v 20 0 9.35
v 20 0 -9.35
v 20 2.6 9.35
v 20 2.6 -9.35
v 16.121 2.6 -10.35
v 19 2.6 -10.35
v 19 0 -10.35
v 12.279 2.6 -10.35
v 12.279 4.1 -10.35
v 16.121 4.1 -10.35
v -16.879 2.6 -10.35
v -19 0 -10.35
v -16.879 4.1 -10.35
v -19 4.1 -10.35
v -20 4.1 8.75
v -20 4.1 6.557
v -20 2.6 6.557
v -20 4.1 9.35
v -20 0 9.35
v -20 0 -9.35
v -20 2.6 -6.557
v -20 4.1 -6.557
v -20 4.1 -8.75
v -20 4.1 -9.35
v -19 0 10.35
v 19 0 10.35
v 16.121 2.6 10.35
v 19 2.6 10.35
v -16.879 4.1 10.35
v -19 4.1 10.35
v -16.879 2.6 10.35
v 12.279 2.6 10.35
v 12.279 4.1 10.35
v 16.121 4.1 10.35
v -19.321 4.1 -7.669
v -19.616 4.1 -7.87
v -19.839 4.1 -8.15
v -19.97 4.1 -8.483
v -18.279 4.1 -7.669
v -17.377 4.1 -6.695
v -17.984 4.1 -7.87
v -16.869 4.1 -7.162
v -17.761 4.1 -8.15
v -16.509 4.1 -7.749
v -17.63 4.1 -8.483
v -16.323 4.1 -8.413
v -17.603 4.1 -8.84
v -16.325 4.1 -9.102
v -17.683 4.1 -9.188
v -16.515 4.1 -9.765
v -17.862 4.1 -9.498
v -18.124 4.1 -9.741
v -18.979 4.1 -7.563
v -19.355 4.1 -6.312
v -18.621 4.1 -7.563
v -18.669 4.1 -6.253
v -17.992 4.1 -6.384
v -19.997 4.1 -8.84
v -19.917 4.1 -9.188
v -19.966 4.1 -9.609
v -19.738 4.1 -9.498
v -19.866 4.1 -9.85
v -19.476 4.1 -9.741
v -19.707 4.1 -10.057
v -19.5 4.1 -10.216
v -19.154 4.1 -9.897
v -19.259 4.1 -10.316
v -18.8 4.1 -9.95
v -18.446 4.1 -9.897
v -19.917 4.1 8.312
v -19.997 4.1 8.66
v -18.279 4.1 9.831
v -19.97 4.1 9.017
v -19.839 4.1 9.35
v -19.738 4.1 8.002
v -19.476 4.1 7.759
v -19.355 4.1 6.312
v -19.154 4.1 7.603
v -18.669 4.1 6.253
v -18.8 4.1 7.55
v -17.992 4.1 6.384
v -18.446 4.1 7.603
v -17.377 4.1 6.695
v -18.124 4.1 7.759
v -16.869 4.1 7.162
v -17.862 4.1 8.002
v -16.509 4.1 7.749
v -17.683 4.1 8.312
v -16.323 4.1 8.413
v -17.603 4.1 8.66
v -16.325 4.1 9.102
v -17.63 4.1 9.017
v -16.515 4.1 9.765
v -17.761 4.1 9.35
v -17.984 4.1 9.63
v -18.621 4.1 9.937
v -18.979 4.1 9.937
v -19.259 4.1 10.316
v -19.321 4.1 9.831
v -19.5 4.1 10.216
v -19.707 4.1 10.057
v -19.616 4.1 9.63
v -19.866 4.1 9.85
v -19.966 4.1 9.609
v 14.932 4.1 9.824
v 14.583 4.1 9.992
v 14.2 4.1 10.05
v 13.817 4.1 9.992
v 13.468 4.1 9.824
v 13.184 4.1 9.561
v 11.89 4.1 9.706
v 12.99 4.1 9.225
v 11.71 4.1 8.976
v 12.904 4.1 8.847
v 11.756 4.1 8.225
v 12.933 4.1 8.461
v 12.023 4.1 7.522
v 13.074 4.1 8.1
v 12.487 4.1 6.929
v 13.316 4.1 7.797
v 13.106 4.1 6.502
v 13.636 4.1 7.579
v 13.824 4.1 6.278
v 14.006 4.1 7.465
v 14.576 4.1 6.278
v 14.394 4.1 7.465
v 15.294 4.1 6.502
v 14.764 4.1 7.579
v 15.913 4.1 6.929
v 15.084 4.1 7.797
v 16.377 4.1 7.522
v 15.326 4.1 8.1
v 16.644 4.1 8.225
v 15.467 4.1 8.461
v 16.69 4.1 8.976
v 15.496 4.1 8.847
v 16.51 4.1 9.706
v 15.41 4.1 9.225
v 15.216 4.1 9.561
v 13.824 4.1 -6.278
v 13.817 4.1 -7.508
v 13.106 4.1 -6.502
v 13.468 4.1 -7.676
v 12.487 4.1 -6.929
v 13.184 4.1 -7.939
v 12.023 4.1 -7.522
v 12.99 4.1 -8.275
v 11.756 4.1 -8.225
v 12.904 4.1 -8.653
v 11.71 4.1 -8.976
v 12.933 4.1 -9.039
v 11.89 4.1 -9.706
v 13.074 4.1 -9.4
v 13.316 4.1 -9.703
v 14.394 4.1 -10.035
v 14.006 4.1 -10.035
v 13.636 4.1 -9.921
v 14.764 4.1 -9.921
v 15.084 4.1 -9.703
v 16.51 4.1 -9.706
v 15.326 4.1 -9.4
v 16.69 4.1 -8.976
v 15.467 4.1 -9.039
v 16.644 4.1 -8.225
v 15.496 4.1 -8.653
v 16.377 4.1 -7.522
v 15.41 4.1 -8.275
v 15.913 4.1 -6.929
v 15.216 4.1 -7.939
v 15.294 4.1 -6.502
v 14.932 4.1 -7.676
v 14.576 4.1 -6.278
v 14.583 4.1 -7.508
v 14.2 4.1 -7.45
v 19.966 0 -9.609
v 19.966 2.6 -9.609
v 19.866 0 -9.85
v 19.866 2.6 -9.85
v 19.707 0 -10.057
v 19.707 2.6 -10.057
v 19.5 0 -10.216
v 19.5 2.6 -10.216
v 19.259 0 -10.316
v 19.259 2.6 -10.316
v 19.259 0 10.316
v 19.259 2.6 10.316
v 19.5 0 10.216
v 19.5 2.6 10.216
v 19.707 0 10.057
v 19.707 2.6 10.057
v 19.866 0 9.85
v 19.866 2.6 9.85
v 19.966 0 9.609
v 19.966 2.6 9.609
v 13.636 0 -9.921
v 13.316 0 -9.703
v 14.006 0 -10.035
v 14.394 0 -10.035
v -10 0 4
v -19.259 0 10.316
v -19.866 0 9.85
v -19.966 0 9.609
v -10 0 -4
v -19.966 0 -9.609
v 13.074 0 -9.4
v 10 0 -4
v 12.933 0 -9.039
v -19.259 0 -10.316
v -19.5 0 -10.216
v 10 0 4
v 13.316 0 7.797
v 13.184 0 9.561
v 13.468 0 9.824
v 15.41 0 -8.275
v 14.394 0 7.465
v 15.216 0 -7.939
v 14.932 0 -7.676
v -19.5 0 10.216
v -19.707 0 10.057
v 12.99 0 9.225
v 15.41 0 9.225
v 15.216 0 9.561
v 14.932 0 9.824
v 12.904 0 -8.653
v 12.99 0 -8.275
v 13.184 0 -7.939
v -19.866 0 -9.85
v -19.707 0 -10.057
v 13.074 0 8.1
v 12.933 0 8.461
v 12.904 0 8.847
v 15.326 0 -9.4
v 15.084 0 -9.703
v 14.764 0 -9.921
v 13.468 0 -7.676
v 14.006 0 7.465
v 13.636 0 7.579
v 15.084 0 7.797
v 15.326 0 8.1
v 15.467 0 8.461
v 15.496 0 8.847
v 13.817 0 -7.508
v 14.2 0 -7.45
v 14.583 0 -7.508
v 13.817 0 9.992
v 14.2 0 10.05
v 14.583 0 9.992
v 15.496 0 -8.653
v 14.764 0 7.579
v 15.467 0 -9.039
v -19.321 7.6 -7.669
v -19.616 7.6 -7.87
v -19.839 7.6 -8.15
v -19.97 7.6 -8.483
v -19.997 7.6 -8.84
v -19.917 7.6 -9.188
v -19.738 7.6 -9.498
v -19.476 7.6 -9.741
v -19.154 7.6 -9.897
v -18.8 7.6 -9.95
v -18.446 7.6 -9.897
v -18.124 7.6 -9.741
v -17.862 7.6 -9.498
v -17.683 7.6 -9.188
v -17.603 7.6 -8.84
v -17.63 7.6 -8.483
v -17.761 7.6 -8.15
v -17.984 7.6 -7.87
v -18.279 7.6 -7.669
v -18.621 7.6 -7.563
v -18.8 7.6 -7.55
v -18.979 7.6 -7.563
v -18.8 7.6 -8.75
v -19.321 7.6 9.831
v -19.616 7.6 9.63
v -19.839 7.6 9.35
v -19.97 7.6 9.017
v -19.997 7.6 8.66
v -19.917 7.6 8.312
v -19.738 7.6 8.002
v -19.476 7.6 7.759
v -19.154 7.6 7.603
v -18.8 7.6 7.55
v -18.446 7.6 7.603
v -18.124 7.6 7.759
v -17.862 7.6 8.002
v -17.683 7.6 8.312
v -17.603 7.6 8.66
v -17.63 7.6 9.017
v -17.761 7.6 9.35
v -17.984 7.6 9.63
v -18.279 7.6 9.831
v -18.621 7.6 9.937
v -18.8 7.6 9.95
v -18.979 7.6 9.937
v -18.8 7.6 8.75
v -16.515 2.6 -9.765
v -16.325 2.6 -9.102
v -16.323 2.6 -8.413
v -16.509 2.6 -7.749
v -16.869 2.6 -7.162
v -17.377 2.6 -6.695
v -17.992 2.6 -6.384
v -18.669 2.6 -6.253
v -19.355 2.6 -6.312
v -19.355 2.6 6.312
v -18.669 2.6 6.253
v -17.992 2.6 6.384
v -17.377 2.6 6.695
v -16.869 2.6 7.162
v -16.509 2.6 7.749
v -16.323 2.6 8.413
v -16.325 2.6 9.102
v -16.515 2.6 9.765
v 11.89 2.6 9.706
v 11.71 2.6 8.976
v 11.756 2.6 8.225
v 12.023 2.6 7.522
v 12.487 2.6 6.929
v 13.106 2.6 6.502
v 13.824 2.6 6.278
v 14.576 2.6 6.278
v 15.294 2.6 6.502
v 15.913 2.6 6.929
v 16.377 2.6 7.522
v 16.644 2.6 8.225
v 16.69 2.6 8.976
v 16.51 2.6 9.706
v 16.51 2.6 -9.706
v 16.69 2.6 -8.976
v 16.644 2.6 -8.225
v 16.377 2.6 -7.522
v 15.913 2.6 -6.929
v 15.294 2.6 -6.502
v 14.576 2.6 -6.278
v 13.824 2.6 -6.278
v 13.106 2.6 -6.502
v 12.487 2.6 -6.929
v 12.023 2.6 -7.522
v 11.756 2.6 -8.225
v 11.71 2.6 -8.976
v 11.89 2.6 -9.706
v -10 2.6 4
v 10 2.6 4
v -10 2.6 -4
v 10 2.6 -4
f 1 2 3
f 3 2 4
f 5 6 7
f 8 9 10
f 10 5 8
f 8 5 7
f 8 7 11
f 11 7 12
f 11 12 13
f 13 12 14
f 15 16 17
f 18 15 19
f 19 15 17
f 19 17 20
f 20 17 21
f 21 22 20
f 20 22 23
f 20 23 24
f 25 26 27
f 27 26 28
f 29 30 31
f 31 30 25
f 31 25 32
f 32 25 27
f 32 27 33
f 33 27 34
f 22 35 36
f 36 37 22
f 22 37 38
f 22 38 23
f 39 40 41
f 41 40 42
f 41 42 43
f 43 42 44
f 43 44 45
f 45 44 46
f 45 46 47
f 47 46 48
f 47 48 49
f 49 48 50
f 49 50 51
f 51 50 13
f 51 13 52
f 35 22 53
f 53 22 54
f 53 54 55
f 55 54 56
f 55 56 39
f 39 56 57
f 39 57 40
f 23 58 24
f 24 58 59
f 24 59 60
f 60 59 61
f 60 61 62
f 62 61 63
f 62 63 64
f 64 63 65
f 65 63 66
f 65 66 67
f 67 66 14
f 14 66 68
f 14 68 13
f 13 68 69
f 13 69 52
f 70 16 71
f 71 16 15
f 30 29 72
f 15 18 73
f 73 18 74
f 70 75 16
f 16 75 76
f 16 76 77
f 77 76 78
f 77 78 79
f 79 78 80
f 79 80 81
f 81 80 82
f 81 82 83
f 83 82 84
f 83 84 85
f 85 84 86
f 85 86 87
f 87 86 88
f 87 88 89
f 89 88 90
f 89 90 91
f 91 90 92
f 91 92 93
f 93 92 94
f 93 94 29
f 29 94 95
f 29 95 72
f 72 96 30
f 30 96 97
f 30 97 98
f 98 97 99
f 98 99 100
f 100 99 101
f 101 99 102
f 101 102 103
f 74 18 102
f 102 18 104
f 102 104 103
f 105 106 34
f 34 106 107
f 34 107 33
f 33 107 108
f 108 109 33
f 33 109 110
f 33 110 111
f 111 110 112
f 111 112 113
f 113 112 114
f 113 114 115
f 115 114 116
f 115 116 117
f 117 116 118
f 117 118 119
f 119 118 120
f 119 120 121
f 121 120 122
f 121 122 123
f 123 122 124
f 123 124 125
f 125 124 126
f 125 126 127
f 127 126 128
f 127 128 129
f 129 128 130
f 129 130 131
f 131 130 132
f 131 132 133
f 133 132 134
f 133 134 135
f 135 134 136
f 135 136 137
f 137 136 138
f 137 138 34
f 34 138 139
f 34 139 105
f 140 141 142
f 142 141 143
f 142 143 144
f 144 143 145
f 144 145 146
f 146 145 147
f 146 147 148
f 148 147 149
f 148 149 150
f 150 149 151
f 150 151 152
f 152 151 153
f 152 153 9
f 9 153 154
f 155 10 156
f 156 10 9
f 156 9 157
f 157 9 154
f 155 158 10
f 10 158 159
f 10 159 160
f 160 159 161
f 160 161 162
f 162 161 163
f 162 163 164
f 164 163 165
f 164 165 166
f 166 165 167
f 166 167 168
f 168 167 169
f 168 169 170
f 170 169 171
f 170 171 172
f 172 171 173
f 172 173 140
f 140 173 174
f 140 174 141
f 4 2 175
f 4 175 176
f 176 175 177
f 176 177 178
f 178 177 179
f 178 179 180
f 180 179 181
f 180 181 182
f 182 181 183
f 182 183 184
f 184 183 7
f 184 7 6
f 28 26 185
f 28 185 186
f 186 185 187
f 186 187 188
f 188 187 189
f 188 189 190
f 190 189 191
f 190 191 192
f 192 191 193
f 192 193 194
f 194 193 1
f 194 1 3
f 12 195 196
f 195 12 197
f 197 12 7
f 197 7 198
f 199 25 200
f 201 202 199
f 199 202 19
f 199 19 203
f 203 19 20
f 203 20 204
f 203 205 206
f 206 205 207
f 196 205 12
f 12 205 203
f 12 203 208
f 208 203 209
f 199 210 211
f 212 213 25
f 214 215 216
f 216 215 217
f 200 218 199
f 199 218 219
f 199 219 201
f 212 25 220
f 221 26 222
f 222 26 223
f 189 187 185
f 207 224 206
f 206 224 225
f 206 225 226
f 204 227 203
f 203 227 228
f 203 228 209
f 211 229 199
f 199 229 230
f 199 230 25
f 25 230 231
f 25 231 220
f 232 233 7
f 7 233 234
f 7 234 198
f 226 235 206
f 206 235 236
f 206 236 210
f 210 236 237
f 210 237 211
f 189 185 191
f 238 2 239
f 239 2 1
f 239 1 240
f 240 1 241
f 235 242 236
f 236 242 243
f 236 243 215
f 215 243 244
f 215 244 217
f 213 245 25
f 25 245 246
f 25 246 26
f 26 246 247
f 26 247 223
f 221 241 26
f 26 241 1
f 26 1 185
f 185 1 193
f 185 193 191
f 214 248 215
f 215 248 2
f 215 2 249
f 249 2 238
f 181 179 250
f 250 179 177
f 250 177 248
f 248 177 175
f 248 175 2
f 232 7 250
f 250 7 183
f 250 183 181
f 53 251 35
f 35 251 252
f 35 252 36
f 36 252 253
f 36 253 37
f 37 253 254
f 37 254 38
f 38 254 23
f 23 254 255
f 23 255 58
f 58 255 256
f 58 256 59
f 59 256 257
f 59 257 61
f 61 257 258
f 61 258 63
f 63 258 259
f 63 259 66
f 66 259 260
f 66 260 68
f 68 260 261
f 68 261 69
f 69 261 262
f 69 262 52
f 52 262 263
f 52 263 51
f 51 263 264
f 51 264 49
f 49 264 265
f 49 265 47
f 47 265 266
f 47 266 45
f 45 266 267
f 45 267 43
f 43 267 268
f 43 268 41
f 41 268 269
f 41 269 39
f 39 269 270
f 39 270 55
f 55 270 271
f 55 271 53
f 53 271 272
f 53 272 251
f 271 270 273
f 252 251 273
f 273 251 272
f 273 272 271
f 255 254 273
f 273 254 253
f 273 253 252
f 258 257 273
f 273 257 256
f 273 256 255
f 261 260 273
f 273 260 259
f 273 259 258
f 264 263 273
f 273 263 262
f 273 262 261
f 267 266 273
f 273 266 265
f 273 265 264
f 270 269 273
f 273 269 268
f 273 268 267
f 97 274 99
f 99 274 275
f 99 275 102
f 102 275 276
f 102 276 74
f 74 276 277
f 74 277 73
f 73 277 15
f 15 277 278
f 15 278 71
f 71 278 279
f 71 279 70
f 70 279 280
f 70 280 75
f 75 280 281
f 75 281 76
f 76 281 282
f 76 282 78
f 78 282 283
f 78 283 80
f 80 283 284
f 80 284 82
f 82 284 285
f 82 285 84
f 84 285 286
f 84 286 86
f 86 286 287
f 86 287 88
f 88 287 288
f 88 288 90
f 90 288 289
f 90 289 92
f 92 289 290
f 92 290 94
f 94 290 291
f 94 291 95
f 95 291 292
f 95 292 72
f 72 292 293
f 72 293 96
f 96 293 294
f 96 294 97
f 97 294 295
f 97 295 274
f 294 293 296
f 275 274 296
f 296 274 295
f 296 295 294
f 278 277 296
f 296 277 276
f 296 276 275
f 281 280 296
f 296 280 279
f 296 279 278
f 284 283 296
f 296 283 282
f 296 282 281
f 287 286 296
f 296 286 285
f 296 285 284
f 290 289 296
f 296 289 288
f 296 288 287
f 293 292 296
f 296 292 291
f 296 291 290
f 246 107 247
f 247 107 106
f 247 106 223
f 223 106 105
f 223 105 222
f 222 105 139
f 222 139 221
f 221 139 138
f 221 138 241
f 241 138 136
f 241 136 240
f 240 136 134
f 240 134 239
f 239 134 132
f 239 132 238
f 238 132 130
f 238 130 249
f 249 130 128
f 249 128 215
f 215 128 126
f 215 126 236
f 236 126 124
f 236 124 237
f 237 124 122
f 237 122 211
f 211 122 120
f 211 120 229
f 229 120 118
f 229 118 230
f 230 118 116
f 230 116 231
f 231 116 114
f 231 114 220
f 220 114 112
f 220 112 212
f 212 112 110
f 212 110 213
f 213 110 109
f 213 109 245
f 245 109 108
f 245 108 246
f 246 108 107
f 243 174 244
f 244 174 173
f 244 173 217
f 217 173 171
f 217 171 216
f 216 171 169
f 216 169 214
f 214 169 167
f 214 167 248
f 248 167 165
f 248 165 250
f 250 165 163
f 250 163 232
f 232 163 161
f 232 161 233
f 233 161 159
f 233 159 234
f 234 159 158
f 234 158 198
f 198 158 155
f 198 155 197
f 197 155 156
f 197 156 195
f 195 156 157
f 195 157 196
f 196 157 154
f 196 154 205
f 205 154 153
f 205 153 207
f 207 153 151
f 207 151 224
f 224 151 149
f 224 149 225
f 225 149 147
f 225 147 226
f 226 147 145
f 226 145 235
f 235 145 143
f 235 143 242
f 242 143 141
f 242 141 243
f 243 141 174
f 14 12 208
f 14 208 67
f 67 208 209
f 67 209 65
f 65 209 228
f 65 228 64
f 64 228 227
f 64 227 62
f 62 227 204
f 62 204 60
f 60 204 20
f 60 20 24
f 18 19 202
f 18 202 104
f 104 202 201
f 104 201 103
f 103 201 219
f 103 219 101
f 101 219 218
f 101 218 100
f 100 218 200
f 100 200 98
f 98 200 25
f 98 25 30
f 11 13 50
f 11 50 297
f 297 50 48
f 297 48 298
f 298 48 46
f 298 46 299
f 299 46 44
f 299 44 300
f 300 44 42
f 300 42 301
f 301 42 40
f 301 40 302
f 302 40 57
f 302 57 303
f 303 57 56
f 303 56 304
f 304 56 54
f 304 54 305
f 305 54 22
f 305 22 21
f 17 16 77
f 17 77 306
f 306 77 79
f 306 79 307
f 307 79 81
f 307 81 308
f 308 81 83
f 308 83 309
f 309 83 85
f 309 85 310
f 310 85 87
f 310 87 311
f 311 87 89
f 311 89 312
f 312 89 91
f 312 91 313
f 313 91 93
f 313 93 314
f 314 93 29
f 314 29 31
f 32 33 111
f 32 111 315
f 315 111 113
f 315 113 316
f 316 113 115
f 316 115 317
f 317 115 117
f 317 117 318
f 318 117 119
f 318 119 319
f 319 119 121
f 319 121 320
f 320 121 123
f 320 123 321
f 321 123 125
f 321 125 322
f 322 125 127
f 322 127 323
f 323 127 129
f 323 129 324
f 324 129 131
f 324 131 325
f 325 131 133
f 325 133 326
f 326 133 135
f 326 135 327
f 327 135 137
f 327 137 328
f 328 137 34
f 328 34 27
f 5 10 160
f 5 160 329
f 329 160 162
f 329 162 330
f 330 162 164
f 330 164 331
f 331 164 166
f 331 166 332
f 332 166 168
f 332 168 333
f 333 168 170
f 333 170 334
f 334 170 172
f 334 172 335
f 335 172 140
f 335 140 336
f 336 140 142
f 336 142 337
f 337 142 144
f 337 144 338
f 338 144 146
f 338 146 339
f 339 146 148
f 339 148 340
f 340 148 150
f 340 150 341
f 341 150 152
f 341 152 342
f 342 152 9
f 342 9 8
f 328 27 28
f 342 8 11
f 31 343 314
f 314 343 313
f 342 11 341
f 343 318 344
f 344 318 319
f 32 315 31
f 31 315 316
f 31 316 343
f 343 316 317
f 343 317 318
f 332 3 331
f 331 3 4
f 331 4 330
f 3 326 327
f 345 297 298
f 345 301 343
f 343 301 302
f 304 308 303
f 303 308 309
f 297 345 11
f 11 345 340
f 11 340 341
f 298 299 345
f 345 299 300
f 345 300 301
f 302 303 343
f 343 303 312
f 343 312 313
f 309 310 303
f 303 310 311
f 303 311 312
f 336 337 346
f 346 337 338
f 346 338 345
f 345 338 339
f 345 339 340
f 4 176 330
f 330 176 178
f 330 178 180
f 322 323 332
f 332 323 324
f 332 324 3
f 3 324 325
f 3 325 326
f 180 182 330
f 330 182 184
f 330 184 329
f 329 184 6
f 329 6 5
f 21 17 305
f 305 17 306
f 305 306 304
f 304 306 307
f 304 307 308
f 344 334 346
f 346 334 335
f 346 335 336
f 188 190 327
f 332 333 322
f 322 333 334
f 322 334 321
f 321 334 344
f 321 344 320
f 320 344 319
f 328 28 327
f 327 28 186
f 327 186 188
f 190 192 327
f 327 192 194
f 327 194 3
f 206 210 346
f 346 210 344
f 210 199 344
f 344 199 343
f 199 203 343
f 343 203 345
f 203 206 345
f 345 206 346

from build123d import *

# Parameters (mm, degrees)
SKETCH1_W           = 40
SKETCH1_H           = 20.7
BOSS_EXTRUDE1_DEPTH = 4.1
SKETCH2_R           = 1.2
BOSS_EXTRUDE2_DEPTH = 3.5
SKETCH3_R           = 1.3
CUT_EXTRUDE1_DEPTH  = 23.889571861
FILLET1_R           = 1
SKETCH4_W           = 48.8996316
SKETCH4_H           = 28.322761229
SKETCH4_R           = 2.5
CUT_EXTRUDE2_DEPTH  = 1.5
SKETCH5_W           = 20
SKETCH5_H           = 8
CUT_EXTRUDE3_DEPTH  = 24.067780561


with BuildPart() as part:
    # Sketch1 → Boss-Extrude1 (new body)
    with BuildSketch(Plane(origin=(0, 0, 0), x_dir=(1, 0, 0), z_dir=(0, 1, 0))):
        Rectangle(SKETCH1_W, SKETCH1_H)
    extrude(amount=BOSS_EXTRUDE1_DEPTH)

    # Sketch2 → Boss-Extrude2 (add)
    with BuildSketch(Plane(origin=(0, 4.1, 0), x_dir=(1, 0, 0), z_dir=(0, 1, 0))):
        with Locations(Location((-18.8, 8.75, 0), (0, 0, 180))):
            Circle(SKETCH2_R)
        with Locations(Location((-18.8, -8.75, 0), (0, 0, 180))):
            Circle(SKETCH2_R)
    extrude(amount=BOSS_EXTRUDE2_DEPTH)

    # Sketch3 → Cut-Extrude1 (cut, through all)
    with BuildSketch(Plane(origin=(0, 4.1, 0), x_dir=(1, 0, 0), z_dir=(0, 1, 0))):
        with Locations(Location((14.2, 8.75, 0), (0, 0, 270))):
            Circle(SKETCH3_R)
        with Locations(Location((14.2, -8.75, 0), (0, 0, 270))):
            Circle(SKETCH3_R)
    extrude(amount=-CUT_EXTRUDE1_DEPTH, mode=Mode.SUBTRACT)

    # Fillet1
    fillet1_edges = [part.edges().sort_by_distance(p)[0] for p in [
        (20, 2.05, 10.35),
        (-20, 2.05, 10.35),
        (-20, 2.05, -10.35),
        (20, 2.05, -10.35),
    ]]
    fillet(fillet1_edges, radius=FILLET1_R)

    # Sketch4 → Cut-Extrude2 (cut)
    with BuildSketch(Plane(origin=(0, 4.1, 0), x_dir=(1, 0, 0), z_dir=(0, 1, 0))):
        with Locations((0.354773627, -0.266080221)):
            Rectangle(SKETCH4_W, SKETCH4_H)
        with Locations((-18.8, 8.75)):
            Circle(SKETCH4_R, mode=Mode.SUBTRACT)
        with Locations((-18.8, -8.75)):
            Circle(SKETCH4_R, mode=Mode.SUBTRACT)
        with Locations((14.2, -8.75)):
            Circle(SKETCH4_R, mode=Mode.SUBTRACT)
        with Locations((14.2, 8.75)):
            Circle(SKETCH4_R, mode=Mode.SUBTRACT)
    extrude(amount=-CUT_EXTRUDE2_DEPTH, mode=Mode.SUBTRACT)

    # Sketch5 → Cut-Extrude3 (cut, through all)
    with BuildSketch(Plane(origin=(0, 2.6, 0), x_dir=(1, 0, 0), z_dir=(0, 1, 0))):
        Rectangle(SKETCH5_W, SKETCH5_H)
    extrude(amount=-CUT_EXTRUDE3_DEPTH, mode=Mode.SUBTRACT)


solid = part.part
